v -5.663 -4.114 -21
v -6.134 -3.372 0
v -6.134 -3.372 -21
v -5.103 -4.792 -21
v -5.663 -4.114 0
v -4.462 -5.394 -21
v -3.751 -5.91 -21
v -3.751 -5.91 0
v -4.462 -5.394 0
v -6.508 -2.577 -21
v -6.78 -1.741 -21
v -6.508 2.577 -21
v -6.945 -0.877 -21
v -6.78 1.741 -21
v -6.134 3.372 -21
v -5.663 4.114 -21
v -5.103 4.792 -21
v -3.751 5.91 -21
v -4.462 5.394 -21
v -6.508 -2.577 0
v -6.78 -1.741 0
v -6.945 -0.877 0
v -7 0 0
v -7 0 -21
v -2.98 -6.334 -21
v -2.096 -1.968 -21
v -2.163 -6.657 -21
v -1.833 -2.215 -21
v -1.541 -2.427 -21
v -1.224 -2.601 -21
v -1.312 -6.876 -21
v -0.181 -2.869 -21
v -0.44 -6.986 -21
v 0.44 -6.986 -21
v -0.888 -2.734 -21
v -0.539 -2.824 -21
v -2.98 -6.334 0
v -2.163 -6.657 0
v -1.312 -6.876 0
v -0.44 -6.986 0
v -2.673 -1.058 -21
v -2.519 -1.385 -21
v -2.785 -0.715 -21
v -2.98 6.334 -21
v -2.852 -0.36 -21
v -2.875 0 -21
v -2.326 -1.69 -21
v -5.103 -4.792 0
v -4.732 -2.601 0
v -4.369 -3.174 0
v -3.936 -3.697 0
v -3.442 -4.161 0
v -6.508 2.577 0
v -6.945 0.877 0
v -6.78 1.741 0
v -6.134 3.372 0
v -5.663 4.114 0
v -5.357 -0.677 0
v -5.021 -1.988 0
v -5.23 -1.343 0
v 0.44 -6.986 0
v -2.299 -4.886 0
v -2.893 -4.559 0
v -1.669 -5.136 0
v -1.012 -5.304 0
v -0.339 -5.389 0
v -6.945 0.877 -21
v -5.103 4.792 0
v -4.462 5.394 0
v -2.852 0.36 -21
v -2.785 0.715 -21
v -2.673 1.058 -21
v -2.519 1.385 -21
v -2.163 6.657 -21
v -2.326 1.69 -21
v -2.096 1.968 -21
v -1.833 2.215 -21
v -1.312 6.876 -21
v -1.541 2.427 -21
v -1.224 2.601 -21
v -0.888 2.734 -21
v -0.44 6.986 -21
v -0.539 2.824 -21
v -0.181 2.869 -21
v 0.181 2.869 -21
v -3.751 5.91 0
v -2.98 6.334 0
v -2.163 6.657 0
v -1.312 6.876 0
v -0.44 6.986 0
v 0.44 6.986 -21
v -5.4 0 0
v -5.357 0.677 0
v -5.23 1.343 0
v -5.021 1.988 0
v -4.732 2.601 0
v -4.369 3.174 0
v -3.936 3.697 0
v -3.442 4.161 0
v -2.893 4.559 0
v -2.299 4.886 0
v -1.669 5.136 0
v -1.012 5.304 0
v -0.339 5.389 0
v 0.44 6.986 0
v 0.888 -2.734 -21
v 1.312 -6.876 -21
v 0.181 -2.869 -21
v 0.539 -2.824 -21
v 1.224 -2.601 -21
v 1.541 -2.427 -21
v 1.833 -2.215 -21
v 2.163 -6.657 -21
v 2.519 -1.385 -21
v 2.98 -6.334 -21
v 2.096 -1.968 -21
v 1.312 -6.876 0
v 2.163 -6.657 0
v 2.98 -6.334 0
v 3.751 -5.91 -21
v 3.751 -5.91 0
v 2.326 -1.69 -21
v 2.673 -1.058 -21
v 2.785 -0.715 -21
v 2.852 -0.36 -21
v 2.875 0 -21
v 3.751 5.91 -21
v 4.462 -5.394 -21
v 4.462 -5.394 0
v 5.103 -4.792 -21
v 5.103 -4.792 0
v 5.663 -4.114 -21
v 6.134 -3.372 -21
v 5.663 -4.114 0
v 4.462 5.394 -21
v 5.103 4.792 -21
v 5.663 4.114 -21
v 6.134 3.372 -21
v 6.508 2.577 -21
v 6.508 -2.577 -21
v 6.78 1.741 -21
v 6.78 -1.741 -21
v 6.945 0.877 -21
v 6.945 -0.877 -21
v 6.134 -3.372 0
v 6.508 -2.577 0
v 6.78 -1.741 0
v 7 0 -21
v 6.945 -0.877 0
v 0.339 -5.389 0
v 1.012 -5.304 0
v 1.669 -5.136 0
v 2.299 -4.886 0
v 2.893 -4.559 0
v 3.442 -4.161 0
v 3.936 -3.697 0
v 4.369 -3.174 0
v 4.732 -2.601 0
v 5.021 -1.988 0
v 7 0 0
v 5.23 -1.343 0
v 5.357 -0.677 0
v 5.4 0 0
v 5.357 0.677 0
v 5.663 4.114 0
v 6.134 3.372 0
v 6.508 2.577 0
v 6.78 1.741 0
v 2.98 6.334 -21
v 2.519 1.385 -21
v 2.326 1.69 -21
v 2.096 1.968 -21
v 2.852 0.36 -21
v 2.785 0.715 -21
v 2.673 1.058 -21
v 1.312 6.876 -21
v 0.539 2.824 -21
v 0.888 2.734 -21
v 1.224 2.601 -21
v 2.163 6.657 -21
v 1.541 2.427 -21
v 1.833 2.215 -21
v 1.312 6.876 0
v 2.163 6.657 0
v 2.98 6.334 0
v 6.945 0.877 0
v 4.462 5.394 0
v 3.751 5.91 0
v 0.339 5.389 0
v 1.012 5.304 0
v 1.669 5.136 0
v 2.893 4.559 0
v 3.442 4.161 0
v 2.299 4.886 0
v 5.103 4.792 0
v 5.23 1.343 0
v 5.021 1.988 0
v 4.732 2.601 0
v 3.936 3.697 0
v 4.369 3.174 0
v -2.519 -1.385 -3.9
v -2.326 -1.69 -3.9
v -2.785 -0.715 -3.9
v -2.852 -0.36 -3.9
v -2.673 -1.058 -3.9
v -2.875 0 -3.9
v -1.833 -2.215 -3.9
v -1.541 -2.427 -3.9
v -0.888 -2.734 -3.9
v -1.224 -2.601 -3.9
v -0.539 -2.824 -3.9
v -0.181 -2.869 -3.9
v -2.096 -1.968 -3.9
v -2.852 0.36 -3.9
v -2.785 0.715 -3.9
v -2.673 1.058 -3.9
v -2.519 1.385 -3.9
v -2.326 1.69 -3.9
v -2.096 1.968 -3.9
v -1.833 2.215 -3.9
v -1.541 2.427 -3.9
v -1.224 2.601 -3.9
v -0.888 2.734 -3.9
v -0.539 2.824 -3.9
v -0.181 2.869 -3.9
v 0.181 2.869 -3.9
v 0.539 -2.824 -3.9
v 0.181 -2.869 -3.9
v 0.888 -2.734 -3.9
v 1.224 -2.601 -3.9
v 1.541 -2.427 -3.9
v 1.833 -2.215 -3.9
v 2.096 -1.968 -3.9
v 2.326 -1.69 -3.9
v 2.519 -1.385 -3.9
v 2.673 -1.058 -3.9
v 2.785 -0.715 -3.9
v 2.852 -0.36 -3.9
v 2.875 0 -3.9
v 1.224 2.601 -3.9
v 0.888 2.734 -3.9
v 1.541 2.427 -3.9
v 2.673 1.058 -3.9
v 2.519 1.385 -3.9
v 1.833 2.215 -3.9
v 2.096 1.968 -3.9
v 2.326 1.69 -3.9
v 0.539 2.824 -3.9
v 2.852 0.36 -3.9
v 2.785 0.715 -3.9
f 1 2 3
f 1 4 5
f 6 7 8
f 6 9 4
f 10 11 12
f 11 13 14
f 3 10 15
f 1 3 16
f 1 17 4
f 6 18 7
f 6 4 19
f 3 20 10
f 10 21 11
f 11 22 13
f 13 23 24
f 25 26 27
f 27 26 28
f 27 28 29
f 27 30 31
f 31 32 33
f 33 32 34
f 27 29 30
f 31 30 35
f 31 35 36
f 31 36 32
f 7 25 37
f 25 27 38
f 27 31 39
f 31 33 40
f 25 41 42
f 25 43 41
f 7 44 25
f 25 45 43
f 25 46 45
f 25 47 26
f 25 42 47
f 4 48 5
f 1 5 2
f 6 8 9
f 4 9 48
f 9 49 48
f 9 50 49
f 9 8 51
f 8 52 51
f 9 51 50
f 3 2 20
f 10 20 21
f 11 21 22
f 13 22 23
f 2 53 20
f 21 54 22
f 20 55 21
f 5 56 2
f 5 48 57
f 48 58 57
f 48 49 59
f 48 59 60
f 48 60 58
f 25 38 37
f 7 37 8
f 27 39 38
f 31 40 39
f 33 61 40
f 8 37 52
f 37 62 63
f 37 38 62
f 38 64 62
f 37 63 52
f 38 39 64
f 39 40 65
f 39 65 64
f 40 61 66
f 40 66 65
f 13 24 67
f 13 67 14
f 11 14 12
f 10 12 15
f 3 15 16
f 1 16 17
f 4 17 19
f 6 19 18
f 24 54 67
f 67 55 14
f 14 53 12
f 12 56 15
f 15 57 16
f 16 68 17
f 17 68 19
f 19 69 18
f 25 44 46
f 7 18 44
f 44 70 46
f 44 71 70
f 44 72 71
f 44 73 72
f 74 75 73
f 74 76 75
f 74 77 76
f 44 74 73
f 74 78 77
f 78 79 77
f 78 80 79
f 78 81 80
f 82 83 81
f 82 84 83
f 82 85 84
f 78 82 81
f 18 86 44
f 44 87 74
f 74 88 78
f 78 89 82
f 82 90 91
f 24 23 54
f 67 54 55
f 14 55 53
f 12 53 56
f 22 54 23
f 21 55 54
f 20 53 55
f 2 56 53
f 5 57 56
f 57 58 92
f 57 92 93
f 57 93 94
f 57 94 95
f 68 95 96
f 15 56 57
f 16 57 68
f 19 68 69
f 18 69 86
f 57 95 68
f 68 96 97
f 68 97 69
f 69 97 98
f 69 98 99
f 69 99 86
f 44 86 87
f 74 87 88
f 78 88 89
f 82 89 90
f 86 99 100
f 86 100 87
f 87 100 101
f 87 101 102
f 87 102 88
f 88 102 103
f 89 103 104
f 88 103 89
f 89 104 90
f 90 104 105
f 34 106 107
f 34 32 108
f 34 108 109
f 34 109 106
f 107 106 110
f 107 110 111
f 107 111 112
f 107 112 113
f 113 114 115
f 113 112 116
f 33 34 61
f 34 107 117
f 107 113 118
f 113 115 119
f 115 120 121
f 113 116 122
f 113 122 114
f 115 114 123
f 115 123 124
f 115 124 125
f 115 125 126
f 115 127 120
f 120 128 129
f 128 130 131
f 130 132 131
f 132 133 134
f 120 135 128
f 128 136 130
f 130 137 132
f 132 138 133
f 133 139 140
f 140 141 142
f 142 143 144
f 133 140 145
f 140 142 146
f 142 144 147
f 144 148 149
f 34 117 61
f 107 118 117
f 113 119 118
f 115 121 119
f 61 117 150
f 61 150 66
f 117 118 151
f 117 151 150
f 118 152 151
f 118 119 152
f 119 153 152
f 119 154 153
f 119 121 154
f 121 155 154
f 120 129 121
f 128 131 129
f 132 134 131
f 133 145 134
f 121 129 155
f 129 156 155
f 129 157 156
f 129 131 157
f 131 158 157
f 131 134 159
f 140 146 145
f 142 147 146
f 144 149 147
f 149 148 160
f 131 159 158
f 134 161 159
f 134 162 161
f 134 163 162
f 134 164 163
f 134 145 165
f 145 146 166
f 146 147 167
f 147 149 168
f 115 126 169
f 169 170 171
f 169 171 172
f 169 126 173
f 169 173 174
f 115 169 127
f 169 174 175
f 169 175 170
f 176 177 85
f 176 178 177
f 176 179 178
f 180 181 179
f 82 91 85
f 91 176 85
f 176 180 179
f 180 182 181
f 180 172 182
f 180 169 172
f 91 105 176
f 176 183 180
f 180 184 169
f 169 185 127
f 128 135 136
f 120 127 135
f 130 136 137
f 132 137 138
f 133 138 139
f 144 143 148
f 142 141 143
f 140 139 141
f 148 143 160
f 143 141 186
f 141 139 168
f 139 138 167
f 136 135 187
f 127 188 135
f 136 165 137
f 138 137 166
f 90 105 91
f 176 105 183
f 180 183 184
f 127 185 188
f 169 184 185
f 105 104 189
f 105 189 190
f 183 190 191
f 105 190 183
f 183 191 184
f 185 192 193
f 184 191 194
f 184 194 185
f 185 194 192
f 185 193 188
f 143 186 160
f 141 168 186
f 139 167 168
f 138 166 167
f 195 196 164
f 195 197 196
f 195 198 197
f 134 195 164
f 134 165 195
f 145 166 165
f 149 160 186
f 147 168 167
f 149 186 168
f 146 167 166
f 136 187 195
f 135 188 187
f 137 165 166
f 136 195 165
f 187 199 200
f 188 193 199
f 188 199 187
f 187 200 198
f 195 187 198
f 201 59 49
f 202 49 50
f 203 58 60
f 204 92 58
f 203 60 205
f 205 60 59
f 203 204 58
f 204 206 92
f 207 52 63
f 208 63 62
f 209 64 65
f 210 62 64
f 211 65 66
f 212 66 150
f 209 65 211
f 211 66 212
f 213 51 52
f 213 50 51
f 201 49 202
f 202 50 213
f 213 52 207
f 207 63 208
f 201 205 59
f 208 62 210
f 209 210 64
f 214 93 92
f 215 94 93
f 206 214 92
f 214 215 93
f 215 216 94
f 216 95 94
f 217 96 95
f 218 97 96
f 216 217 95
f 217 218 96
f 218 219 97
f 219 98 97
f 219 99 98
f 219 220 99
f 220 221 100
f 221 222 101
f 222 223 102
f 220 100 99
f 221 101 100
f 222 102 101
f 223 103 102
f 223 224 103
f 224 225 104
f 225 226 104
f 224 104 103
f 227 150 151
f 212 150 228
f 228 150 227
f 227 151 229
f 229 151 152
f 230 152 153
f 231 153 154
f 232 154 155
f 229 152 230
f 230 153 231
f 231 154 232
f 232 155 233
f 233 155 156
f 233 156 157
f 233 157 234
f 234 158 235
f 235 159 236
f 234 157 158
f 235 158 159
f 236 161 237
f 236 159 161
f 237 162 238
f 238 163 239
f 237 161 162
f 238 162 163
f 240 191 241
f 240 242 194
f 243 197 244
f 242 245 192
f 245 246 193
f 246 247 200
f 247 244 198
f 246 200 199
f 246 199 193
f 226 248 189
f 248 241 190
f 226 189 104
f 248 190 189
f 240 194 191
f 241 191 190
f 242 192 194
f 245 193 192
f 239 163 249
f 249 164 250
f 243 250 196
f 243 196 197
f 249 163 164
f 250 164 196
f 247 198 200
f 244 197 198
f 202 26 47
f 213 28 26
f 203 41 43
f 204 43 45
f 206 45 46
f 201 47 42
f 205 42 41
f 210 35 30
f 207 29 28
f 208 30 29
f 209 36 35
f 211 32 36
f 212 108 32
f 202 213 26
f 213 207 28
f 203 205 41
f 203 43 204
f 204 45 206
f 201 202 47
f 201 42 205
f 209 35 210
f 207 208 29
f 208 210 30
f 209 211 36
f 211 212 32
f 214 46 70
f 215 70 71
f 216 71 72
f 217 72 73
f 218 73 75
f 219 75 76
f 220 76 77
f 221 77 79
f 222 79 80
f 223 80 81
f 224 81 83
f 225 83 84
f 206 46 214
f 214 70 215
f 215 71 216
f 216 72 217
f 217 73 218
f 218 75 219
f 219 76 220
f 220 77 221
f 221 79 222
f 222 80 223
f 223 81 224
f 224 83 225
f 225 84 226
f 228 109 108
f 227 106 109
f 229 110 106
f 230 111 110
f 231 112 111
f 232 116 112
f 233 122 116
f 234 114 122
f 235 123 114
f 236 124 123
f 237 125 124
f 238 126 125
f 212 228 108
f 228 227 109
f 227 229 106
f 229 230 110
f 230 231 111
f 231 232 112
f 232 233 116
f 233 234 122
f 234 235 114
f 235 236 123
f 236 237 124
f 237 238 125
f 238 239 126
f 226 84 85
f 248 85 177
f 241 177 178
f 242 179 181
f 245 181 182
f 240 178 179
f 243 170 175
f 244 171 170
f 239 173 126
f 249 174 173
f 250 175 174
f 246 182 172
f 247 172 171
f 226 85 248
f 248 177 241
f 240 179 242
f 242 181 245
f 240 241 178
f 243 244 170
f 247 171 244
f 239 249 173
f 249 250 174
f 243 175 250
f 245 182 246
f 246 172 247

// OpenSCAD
$fn = 50;


difference() {
	union() {
		translate(v = [0, 0, -21.0000000000]) {
			cylinder(h = 21, r = 7.0000000000);
		}
		#translate(v = [0, 0, -24.0000000000]) {
			cylinder(h = 24, r = 2.8750000000);
		}
	}
	union() {
		translate(v = [0, 0, 0]) {
			rotate(a = [0, 0, 0]) {
				difference() {
					union() {
						translate(v = [0, 0, -24.0000000000]) {
							cylinder(h = 24, r = 2.6000000000);
						}
						translate(v = [0, 0, -3.9000000000]) {
							cylinder(h = 3.9000000000, r1 = 2.8750000000, r2 = 5.4000000000);
						}
						translate(v = [0, 0, -24.0000000000]) {
							cylinder(h = 24, r = 2.8750000000);
						}
						translate(v = [0, 0, -24.0000000000]) {
							cylinder(h = 24, r = 2.6000000000);
						}
					}
					union();
				}
			}
		}
	}
}
